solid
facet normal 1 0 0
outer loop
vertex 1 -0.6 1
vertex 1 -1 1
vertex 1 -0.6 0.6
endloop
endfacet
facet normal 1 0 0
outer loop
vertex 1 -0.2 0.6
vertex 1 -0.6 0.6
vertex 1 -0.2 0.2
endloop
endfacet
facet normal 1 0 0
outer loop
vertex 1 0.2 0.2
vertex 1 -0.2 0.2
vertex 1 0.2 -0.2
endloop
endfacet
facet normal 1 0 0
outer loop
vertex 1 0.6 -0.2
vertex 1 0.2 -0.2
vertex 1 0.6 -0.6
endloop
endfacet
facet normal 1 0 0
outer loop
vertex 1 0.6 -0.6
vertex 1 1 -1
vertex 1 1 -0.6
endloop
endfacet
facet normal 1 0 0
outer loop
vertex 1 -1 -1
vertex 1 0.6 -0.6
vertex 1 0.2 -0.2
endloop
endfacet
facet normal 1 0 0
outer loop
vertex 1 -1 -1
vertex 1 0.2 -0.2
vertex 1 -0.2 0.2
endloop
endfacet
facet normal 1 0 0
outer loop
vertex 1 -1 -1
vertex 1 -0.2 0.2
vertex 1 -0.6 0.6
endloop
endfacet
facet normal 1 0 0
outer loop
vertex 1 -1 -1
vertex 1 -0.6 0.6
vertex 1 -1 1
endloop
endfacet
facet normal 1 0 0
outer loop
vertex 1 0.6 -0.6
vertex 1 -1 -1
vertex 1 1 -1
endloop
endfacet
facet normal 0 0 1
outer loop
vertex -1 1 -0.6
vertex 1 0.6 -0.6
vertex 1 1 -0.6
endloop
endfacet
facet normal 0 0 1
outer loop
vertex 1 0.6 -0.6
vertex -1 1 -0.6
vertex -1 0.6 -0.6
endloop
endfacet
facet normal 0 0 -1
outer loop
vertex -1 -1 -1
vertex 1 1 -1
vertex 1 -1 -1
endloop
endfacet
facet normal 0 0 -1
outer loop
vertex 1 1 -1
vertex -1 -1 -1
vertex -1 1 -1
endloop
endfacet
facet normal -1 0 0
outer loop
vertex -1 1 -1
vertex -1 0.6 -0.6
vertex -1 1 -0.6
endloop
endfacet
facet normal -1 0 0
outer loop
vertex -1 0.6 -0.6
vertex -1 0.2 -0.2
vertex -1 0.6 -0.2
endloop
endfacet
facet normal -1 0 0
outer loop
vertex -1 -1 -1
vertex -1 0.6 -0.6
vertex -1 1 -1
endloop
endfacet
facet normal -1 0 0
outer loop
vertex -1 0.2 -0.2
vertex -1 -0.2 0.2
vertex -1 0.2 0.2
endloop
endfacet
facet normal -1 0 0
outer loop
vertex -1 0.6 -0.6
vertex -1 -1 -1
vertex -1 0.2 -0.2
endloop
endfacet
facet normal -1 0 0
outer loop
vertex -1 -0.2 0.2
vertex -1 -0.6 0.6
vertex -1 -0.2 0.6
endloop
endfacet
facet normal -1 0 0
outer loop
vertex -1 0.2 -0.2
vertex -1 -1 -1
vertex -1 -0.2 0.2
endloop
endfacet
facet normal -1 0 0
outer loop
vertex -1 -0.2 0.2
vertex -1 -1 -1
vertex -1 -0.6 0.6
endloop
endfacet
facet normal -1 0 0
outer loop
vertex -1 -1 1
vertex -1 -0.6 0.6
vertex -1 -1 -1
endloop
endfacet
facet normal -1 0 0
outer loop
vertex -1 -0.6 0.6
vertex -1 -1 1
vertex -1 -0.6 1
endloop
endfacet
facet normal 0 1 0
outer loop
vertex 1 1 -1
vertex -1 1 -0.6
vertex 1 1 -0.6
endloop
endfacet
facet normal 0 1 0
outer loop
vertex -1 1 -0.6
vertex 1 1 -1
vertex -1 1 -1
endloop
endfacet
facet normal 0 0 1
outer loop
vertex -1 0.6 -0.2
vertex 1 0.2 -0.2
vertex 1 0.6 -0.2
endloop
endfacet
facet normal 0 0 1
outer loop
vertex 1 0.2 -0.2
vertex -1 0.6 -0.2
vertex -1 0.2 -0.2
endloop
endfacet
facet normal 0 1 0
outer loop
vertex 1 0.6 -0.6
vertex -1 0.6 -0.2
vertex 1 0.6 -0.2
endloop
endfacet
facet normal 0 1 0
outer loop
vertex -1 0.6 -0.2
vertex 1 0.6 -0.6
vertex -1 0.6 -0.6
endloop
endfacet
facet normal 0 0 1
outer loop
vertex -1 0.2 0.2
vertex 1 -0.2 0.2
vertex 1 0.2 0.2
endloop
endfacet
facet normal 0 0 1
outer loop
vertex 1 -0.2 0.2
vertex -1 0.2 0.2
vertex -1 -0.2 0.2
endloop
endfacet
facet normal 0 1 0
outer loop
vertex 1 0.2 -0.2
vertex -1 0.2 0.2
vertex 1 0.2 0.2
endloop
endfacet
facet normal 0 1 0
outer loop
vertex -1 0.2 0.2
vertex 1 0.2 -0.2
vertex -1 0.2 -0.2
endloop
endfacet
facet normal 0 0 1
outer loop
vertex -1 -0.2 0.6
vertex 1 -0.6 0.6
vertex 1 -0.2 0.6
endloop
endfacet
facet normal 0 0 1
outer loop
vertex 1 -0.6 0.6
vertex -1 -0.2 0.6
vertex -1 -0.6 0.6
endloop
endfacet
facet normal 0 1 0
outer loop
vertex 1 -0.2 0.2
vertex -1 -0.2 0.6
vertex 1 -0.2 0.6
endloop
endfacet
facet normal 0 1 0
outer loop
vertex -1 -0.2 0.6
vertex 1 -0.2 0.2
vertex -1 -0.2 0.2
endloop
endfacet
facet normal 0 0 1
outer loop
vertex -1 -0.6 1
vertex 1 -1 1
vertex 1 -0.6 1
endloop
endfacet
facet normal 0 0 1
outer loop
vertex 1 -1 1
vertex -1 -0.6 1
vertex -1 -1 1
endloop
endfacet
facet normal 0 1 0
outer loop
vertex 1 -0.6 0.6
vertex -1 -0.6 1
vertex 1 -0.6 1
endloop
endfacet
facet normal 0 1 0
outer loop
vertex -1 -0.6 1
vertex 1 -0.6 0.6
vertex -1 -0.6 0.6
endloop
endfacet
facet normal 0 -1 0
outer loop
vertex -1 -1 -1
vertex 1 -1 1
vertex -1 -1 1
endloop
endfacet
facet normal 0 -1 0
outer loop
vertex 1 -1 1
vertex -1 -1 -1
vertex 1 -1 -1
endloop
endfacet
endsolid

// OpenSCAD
// A staircase with a settable number of steps

module stairs(steps){
    // Main ramp
    union(){
        rotate([0,90,0])
            linear_extrude(height = 2, center=true) 
                polygon([
                        [1, 1],
                        [1, -1],
                        [-1, -1],
                ]);
        //Steps
        for (i=[0:steps-1], h=i+1/2) 
            translate([0, 2*(steps/2 - h)/steps, -2*(steps/2 - h)/steps])
                cube([2,2/steps,2/steps], center=true);
    }
}

stairs(steps=5);
